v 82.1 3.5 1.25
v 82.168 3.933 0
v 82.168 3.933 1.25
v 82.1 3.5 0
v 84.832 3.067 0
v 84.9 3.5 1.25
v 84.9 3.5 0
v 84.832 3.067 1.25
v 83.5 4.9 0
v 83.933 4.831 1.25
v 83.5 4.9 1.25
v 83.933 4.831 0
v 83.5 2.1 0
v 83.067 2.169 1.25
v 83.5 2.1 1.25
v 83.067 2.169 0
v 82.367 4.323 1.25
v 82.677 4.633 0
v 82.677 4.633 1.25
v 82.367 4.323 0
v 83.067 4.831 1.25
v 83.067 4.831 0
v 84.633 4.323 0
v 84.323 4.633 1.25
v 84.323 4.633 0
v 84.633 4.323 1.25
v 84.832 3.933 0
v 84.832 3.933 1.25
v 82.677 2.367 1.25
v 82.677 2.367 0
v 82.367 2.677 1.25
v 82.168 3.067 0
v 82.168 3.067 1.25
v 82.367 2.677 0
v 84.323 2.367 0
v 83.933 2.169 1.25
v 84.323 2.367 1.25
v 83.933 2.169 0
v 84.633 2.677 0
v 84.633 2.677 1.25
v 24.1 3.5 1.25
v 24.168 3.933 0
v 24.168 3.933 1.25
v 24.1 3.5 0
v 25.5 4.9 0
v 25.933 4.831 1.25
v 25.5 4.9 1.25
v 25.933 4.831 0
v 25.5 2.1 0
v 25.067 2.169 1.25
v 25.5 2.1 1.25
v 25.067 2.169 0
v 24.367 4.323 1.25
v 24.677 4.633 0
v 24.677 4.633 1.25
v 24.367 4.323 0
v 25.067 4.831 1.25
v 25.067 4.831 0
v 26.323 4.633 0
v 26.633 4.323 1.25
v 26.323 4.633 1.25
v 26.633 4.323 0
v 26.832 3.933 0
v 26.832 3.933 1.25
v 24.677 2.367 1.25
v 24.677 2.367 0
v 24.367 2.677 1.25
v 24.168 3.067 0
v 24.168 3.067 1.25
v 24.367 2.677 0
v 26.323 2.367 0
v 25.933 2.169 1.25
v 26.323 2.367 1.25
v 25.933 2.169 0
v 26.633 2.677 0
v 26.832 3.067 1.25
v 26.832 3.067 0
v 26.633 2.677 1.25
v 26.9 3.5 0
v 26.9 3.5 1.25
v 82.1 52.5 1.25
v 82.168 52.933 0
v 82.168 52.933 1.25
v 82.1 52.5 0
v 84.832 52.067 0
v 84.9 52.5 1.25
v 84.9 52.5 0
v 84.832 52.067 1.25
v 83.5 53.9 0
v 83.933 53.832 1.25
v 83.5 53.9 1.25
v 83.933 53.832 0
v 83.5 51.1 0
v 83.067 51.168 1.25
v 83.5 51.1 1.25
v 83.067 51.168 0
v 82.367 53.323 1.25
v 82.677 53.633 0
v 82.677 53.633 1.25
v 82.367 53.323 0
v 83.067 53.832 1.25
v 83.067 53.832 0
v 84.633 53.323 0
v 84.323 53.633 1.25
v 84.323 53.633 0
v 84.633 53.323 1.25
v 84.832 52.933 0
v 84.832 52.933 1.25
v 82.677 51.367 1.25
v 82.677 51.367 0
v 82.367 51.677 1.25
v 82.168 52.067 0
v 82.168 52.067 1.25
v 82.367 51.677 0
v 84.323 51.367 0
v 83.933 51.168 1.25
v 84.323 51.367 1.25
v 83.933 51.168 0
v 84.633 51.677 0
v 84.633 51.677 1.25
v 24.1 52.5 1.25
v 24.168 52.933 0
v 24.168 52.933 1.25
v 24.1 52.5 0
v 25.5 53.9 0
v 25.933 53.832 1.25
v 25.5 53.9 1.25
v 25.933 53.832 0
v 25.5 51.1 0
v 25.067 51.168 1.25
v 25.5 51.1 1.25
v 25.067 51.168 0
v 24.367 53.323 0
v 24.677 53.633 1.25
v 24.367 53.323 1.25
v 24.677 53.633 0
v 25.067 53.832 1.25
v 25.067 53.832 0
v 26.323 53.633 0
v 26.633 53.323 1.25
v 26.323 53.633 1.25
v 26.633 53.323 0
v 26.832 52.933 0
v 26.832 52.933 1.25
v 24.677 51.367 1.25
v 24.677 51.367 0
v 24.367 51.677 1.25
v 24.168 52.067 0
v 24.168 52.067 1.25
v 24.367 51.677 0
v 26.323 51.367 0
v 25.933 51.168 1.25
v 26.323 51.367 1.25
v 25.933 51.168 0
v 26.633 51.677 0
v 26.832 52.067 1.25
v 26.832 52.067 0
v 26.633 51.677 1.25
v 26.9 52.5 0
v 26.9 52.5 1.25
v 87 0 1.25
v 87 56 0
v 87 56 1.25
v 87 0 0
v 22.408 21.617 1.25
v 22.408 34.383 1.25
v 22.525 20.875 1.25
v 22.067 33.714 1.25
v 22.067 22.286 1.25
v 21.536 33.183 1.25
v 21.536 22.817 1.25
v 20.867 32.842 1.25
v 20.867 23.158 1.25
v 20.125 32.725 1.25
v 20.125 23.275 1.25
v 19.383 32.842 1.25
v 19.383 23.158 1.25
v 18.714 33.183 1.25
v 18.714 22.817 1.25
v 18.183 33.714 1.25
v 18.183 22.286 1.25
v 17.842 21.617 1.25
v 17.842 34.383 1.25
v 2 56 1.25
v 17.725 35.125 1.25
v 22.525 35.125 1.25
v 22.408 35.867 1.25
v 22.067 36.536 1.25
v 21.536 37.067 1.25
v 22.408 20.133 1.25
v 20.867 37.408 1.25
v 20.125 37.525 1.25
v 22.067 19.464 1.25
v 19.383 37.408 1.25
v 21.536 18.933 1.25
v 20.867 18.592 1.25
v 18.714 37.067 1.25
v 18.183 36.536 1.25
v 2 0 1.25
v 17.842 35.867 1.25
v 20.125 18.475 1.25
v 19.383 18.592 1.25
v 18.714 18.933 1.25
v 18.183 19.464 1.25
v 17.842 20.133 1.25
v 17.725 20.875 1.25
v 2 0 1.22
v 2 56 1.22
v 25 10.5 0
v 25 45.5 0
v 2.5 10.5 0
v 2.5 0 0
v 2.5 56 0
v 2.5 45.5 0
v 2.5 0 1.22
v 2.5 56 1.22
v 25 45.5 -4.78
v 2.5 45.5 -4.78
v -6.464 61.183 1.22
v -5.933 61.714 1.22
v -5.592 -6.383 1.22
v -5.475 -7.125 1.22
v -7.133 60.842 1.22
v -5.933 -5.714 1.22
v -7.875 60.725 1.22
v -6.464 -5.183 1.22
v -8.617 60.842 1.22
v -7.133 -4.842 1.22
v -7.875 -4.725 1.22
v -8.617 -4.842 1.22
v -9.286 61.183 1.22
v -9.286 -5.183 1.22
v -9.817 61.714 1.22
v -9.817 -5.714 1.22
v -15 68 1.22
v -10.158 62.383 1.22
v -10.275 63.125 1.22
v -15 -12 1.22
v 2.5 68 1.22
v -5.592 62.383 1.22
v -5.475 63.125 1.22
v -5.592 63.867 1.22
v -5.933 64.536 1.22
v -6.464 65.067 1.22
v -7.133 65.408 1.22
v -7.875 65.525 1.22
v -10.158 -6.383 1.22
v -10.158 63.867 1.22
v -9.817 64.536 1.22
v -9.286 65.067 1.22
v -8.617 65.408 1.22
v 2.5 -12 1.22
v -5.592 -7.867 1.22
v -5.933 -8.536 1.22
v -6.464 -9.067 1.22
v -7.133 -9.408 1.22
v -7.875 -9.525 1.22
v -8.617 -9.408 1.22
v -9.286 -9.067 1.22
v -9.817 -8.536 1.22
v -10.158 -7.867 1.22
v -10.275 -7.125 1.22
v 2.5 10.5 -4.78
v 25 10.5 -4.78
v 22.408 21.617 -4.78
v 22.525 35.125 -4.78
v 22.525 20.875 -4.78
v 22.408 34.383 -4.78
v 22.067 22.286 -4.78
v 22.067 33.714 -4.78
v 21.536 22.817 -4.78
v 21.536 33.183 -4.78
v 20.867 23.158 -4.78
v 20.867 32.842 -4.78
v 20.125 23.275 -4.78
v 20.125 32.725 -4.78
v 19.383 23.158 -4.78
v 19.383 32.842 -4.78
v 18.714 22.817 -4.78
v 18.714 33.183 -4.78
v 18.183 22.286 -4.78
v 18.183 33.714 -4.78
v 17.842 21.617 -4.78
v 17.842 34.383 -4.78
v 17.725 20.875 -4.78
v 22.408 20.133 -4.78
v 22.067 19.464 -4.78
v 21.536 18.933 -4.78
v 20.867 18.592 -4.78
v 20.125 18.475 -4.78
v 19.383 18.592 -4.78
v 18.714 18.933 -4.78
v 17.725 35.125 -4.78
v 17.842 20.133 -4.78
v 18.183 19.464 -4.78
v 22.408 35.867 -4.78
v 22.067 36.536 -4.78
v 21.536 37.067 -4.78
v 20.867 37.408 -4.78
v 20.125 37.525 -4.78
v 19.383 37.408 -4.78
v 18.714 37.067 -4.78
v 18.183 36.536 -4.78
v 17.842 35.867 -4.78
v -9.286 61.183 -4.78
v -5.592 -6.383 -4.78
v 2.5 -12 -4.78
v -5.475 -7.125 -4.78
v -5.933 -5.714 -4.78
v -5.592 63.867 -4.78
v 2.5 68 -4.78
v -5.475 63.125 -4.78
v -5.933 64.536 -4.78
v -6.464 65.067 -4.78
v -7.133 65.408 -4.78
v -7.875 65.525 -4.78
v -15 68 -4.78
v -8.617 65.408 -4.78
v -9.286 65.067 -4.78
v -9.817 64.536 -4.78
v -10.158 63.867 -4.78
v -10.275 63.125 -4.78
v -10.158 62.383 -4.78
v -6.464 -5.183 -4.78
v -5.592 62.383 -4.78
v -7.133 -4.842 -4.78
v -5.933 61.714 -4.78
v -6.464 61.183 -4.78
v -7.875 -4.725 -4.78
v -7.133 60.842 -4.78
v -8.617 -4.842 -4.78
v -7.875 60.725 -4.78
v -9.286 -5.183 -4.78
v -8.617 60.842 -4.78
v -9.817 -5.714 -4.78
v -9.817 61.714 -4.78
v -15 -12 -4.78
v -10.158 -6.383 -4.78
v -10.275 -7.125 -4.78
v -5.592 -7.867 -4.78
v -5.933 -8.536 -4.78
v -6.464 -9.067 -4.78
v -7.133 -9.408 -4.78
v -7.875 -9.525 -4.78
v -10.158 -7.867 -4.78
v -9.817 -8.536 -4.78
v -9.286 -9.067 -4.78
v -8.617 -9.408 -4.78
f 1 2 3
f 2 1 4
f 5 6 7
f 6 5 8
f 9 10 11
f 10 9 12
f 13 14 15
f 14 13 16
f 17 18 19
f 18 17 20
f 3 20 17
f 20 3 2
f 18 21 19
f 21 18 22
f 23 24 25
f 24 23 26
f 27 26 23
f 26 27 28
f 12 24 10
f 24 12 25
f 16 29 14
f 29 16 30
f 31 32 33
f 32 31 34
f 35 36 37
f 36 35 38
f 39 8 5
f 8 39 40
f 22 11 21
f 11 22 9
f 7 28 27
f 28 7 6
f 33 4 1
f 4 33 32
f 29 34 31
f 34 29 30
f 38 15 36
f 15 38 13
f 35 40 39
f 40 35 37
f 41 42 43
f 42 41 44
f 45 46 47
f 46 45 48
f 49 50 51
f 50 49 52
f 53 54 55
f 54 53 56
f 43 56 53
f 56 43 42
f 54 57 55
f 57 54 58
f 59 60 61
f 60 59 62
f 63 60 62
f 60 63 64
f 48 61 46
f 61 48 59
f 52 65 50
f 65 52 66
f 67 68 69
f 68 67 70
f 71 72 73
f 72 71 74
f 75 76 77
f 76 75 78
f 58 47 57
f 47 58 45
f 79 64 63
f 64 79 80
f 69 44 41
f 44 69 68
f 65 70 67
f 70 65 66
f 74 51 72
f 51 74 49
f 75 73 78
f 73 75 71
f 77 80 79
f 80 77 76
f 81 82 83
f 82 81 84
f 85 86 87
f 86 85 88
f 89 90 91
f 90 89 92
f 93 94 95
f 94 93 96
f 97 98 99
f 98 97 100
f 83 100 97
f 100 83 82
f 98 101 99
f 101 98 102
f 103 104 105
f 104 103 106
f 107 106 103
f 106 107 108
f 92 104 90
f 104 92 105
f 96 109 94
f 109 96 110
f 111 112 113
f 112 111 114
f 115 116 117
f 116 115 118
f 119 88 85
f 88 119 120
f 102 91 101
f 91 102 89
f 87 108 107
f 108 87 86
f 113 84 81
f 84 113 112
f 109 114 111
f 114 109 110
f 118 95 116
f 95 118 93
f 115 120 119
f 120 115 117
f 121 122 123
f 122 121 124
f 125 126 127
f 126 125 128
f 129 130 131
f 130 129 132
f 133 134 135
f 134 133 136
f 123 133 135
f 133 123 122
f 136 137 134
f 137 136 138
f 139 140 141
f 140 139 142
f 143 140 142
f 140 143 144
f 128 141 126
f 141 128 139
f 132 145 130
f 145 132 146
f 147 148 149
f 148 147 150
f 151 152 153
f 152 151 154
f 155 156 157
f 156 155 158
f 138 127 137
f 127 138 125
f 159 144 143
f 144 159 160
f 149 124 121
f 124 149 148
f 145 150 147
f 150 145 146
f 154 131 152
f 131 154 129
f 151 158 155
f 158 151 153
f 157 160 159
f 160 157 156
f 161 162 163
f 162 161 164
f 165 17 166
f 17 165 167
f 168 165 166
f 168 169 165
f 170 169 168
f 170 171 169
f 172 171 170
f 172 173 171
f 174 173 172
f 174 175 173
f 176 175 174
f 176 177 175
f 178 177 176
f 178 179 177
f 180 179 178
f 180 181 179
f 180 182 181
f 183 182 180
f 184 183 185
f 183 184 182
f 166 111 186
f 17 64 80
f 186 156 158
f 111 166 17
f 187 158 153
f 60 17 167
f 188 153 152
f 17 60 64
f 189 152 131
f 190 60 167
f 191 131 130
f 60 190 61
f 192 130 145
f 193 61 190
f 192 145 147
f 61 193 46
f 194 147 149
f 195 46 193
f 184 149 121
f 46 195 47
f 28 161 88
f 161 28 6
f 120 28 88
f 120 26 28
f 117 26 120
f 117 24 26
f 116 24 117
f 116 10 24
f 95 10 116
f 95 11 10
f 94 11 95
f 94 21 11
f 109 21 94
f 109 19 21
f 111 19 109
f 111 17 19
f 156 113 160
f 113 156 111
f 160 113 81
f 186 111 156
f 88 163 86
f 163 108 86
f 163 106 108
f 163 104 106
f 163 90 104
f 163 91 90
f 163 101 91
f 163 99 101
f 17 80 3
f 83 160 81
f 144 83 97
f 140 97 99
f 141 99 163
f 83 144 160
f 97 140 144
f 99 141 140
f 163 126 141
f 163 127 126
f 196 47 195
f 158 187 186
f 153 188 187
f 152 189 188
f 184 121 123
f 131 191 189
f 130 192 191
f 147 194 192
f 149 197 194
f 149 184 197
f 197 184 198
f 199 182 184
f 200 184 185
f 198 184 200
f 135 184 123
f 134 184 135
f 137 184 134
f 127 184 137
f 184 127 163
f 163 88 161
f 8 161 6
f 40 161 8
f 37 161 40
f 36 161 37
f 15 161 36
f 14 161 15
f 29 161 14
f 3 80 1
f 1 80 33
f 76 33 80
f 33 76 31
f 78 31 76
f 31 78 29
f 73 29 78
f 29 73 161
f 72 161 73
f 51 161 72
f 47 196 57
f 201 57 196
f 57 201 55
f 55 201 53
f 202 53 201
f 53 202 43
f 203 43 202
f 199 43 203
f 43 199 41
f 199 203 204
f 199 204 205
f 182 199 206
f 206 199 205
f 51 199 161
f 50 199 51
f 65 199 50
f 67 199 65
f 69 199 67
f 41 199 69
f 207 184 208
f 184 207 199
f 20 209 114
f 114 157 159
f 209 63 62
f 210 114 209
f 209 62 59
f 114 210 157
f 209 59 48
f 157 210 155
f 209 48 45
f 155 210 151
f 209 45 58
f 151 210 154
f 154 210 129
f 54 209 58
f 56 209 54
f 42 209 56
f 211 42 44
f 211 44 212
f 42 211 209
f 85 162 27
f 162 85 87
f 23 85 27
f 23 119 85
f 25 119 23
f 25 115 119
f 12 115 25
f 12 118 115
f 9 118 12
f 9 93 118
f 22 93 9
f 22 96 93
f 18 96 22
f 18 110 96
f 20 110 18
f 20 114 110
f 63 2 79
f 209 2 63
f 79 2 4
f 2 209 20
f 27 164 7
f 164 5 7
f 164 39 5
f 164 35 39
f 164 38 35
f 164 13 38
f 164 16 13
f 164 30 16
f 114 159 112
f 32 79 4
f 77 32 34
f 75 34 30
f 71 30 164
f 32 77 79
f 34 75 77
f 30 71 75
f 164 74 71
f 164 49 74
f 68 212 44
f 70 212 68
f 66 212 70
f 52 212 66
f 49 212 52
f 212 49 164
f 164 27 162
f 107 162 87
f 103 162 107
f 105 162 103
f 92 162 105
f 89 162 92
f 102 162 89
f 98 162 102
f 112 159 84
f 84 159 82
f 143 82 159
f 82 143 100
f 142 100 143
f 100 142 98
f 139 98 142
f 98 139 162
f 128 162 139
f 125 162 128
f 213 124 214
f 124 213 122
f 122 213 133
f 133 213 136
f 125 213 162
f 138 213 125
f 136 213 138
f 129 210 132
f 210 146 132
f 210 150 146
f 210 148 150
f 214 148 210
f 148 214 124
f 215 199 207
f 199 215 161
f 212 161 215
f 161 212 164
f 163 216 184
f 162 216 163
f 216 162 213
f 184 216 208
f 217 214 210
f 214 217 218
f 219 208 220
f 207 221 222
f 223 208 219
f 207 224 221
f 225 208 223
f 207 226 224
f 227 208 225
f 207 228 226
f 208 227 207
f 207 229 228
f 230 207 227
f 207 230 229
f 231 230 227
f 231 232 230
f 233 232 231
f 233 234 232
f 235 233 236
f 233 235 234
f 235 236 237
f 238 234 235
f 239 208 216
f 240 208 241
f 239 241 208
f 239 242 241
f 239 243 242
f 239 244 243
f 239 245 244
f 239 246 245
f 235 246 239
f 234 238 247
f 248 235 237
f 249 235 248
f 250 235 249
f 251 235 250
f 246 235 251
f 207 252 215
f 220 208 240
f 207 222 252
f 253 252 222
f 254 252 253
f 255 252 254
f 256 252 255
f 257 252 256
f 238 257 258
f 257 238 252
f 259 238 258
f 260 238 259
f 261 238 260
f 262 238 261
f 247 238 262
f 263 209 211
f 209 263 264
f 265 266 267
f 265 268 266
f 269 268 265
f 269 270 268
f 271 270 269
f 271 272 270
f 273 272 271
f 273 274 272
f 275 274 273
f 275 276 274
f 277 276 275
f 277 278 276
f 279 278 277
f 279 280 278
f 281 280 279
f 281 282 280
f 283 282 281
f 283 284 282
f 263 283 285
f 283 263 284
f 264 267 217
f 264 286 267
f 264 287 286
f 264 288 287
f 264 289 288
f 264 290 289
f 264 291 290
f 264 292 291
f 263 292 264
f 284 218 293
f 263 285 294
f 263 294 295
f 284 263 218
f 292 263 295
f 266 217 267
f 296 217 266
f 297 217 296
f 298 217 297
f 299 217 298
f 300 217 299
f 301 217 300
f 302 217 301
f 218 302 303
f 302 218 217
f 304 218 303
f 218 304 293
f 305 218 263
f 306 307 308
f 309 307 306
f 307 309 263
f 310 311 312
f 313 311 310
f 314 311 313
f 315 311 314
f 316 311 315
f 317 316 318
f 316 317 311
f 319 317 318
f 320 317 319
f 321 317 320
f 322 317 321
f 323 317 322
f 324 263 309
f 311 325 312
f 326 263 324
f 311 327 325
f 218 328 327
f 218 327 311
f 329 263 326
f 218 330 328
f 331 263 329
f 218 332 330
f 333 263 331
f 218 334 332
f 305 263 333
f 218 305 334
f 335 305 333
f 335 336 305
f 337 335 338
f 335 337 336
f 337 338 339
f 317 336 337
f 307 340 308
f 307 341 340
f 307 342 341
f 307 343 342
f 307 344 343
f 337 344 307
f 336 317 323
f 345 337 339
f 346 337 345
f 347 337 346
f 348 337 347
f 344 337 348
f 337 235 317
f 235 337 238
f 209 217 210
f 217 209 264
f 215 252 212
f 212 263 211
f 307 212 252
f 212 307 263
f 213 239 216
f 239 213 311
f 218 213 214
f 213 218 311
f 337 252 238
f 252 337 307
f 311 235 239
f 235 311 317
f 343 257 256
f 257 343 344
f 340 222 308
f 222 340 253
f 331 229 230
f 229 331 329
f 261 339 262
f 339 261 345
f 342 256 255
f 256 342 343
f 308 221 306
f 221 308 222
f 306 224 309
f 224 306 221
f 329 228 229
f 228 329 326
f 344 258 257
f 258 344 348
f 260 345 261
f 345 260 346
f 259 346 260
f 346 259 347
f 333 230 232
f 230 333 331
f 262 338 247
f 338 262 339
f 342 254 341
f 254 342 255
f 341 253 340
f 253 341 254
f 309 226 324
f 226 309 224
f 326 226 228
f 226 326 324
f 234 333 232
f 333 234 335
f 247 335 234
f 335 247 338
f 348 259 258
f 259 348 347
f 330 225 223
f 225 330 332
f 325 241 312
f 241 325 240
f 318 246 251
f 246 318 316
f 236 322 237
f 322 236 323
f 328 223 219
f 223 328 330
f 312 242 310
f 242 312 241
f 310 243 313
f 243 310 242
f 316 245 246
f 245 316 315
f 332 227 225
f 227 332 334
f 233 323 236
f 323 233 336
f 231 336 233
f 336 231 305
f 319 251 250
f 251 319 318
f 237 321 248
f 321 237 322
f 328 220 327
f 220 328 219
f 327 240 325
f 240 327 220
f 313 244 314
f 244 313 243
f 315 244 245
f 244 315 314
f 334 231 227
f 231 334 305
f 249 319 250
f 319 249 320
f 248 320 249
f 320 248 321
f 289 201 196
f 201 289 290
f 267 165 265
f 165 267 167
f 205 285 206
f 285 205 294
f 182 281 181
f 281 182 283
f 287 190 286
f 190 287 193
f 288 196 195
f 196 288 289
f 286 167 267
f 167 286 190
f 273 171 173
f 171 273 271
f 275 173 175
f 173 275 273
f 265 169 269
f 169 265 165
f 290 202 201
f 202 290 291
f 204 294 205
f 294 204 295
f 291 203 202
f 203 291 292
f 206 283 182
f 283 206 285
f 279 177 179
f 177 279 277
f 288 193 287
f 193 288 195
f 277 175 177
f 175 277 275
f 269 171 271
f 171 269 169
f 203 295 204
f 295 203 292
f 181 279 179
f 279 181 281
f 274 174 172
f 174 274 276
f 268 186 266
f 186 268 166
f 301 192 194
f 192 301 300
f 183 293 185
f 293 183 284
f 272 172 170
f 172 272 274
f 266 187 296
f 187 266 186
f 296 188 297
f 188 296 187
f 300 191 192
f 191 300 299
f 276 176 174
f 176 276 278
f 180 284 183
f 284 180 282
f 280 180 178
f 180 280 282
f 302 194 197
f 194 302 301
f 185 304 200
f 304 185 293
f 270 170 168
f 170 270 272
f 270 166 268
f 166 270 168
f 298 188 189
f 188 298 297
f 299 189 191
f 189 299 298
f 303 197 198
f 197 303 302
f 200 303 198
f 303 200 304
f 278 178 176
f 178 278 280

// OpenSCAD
// Pi Hole library modified by Alan Steremberg to add a bracket to hook it to
// the RGB panel

//Shut your Pi Hole! 
//An OpenSCAD library to assist with designing Raspberry Pi accessories

//This work is licensed under the Creative Commons Attribution-ShareAlike 4.0 International License. To view a copy of this license, visit http://creativecommons.org/licenses/by-sa/4.0/.
//© 2016 Dale Price

//Pi dimensions sourced from https://www.raspberrypi.org/documentation/hardware/raspberrypi/mechanical/
//Currently supports "1B", "1A+", "1B+", "2B", "3B", "Zero"

//get vector of [x,y] vectors of locations of mounting holes based on Pi version
function piHoleLocations (board="3B") = 
	(board=="1A+" || board=="1B+" || board=="2B" || board=="3B") ?
		[[3.5, 3.5], [61.5, 3.5], [3.5, 52.5], [61.5, 52.5]] : //pi 1B+, 2B, 3B
	(board=="Zero") ?
		[[3.5, 3.5], [61.5, 3.5], [3.5, 26.5], [61.5, 26.5]] : //pi zero
	(board=="1B") ?
		[[80, 43.5], [25, 17.5]] :
	[]; //invalid board

//get vector of [x,y,z] dimensions of board
//	dimensions are for PCB only, not ports or anything else
function piBoardDim (board="3B") =
	(board=="1B" || board=="1B+" || board=="2B" || board=="3B") ?
		[85, 56, 1.25] :
	(board=="Zero") ?
		[65, 30, 1.25] :
	(board == "1A+") ?
		[65, 56, 1.25] :
	[0,0,0];

//Mounting holes for a Raspberry Pi of the specified version
//	Parameters
//		board: the version of the raspberry pi to generate holes for
//		depth: the depth of the holes in mm
module piHoles (board, depth = 5, preview=true) {
	hd = 2.8; //radius of pi mounting holes plus a tiny bit extra to account for shrinkage when 3D printing
	hr = hd/2;

	//preview of the board itself
	if(preview==true)
		% piBoard(board);
	
	//mounting holes
	for(holePos = piHoleLocations(board)) {
		translate([holePos[0], holePos[1], -depth]) cylinder(d=hd, h=depth);
	}
}

//Preview of board dimensions for Raspberry Pi of the specified version
module piBoard (board) {
	difference() {
		cube(piBoardDim(board), center=false);
		translate([0,0,piBoardDim(board)[2] + 0.01]) piHoles(board, piBoardDim(board)[2] + 0.02, false);
	}

	//warn about possible inaccuracy of boards that don't currently have official documentation
	if(board == "1B") {
		echo("CAUTION: The mounting hole positions for the board you have selected may not be accurate because the Raspberry Pi Foundation does not currently provide official mechanical drawings for it.");
	}
}

//Snap-fit posts for mounting the Raspberry Pi
//	Parameters
//		board: version of the raspberry pi to mount
//		height: height of the top surface of the raspberry pi board off the base of the posts
//		preview: whether or not to show a preview of the board in place
module piPosts(board, height=5, preview=true) {
	piSize = piBoardDim(board);
	piHolePos = piHoleLocations(board);

	module pcbPost(height) {
		cylinder(d=2, h=height);
		cylinder(d1=5, d2=2, h=height - piSize[2] - 0.25);

		translate([0, 0.4, height]) scale([1.1, 1.1, 1]) cylinder(d=2, h=0.5);
	}
	
	for(holePos = piHolePos) {
		translate([holePos[0], holePos[1], 0]) pcbPost(height);
	}

	if(preview==true)
		% translate([0,0,height-piSize[2]]) piBoard(board);
}

//farHole = 65;
//closeHole=19.5;
//bracketWidth=30;
//bracketHeight=75;

// 16 newer panels
farHole = 14.25;
closeHole = 70.25;
bracketWidth=35;
bracketHeight=80;


terminalHoleWidth=53;
bracketThickness=6;

screwDiameter = 4.8;
screwRadius=screwDiameter/2;



module half_bracket() {
    halfBracketThickness=bracketThickness;
    difference(){
        union(){
    translate([0,bracketHeight/4,0]) cube([bracketWidth,bracketHeight/2,halfBracketThickness],center=true);
    rotate(90) translate([bracketWidth/4,0,0])cube([bracketWidth/2,bracketHeight,halfBracketThickness],center=true);
        }
        union(){
               color("green") translate([closeHole/2,farHole/2,0]) cylinder(r=screwRadius,h=20,center=true);
               color("green") translate([-closeHole/2,farHole/2,0]) cylinder(r=screwRadius,h=20,center=true);
               color("green") translate([farHole/2,closeHole/2,0]) cylinder(r=screwRadius,h=20,center=true);
               color("green") translate([-farHole/2,closeHole/2,0]) cylinder(r=screwRadius,h=20,center=true);
        }
    }

}

color("DarkGreen", 1, $fn=20) {
    difference() {
        union(){
	mirror([1,0,0]) translate([-87,0,0])piBoard("3B");
    translate([-15,28,-1.78]) rotate([0,0,-90])half_bracket();
        }
        translate([-15,28,-0.8]) rotate([0,0,-90]){
               color("green") translate([closeHole/2,farHole/2,0]) cylinder(r=screwRadius,h=20,center=true);
               color("green") translate([-closeHole/2,farHole/2,0]) cylinder(r=screwRadius,h=20,center=true);
                color("green") translate([farHole/2,closeHole/2,0]) cylinder(r=screwRadius,h=20,center=true);
               color("green") translate([-farHole/2,closeHole/2,0]) cylinder(r=screwRadius,h=20,center=true);
       }
    }
    //piPosts("3B");
}
